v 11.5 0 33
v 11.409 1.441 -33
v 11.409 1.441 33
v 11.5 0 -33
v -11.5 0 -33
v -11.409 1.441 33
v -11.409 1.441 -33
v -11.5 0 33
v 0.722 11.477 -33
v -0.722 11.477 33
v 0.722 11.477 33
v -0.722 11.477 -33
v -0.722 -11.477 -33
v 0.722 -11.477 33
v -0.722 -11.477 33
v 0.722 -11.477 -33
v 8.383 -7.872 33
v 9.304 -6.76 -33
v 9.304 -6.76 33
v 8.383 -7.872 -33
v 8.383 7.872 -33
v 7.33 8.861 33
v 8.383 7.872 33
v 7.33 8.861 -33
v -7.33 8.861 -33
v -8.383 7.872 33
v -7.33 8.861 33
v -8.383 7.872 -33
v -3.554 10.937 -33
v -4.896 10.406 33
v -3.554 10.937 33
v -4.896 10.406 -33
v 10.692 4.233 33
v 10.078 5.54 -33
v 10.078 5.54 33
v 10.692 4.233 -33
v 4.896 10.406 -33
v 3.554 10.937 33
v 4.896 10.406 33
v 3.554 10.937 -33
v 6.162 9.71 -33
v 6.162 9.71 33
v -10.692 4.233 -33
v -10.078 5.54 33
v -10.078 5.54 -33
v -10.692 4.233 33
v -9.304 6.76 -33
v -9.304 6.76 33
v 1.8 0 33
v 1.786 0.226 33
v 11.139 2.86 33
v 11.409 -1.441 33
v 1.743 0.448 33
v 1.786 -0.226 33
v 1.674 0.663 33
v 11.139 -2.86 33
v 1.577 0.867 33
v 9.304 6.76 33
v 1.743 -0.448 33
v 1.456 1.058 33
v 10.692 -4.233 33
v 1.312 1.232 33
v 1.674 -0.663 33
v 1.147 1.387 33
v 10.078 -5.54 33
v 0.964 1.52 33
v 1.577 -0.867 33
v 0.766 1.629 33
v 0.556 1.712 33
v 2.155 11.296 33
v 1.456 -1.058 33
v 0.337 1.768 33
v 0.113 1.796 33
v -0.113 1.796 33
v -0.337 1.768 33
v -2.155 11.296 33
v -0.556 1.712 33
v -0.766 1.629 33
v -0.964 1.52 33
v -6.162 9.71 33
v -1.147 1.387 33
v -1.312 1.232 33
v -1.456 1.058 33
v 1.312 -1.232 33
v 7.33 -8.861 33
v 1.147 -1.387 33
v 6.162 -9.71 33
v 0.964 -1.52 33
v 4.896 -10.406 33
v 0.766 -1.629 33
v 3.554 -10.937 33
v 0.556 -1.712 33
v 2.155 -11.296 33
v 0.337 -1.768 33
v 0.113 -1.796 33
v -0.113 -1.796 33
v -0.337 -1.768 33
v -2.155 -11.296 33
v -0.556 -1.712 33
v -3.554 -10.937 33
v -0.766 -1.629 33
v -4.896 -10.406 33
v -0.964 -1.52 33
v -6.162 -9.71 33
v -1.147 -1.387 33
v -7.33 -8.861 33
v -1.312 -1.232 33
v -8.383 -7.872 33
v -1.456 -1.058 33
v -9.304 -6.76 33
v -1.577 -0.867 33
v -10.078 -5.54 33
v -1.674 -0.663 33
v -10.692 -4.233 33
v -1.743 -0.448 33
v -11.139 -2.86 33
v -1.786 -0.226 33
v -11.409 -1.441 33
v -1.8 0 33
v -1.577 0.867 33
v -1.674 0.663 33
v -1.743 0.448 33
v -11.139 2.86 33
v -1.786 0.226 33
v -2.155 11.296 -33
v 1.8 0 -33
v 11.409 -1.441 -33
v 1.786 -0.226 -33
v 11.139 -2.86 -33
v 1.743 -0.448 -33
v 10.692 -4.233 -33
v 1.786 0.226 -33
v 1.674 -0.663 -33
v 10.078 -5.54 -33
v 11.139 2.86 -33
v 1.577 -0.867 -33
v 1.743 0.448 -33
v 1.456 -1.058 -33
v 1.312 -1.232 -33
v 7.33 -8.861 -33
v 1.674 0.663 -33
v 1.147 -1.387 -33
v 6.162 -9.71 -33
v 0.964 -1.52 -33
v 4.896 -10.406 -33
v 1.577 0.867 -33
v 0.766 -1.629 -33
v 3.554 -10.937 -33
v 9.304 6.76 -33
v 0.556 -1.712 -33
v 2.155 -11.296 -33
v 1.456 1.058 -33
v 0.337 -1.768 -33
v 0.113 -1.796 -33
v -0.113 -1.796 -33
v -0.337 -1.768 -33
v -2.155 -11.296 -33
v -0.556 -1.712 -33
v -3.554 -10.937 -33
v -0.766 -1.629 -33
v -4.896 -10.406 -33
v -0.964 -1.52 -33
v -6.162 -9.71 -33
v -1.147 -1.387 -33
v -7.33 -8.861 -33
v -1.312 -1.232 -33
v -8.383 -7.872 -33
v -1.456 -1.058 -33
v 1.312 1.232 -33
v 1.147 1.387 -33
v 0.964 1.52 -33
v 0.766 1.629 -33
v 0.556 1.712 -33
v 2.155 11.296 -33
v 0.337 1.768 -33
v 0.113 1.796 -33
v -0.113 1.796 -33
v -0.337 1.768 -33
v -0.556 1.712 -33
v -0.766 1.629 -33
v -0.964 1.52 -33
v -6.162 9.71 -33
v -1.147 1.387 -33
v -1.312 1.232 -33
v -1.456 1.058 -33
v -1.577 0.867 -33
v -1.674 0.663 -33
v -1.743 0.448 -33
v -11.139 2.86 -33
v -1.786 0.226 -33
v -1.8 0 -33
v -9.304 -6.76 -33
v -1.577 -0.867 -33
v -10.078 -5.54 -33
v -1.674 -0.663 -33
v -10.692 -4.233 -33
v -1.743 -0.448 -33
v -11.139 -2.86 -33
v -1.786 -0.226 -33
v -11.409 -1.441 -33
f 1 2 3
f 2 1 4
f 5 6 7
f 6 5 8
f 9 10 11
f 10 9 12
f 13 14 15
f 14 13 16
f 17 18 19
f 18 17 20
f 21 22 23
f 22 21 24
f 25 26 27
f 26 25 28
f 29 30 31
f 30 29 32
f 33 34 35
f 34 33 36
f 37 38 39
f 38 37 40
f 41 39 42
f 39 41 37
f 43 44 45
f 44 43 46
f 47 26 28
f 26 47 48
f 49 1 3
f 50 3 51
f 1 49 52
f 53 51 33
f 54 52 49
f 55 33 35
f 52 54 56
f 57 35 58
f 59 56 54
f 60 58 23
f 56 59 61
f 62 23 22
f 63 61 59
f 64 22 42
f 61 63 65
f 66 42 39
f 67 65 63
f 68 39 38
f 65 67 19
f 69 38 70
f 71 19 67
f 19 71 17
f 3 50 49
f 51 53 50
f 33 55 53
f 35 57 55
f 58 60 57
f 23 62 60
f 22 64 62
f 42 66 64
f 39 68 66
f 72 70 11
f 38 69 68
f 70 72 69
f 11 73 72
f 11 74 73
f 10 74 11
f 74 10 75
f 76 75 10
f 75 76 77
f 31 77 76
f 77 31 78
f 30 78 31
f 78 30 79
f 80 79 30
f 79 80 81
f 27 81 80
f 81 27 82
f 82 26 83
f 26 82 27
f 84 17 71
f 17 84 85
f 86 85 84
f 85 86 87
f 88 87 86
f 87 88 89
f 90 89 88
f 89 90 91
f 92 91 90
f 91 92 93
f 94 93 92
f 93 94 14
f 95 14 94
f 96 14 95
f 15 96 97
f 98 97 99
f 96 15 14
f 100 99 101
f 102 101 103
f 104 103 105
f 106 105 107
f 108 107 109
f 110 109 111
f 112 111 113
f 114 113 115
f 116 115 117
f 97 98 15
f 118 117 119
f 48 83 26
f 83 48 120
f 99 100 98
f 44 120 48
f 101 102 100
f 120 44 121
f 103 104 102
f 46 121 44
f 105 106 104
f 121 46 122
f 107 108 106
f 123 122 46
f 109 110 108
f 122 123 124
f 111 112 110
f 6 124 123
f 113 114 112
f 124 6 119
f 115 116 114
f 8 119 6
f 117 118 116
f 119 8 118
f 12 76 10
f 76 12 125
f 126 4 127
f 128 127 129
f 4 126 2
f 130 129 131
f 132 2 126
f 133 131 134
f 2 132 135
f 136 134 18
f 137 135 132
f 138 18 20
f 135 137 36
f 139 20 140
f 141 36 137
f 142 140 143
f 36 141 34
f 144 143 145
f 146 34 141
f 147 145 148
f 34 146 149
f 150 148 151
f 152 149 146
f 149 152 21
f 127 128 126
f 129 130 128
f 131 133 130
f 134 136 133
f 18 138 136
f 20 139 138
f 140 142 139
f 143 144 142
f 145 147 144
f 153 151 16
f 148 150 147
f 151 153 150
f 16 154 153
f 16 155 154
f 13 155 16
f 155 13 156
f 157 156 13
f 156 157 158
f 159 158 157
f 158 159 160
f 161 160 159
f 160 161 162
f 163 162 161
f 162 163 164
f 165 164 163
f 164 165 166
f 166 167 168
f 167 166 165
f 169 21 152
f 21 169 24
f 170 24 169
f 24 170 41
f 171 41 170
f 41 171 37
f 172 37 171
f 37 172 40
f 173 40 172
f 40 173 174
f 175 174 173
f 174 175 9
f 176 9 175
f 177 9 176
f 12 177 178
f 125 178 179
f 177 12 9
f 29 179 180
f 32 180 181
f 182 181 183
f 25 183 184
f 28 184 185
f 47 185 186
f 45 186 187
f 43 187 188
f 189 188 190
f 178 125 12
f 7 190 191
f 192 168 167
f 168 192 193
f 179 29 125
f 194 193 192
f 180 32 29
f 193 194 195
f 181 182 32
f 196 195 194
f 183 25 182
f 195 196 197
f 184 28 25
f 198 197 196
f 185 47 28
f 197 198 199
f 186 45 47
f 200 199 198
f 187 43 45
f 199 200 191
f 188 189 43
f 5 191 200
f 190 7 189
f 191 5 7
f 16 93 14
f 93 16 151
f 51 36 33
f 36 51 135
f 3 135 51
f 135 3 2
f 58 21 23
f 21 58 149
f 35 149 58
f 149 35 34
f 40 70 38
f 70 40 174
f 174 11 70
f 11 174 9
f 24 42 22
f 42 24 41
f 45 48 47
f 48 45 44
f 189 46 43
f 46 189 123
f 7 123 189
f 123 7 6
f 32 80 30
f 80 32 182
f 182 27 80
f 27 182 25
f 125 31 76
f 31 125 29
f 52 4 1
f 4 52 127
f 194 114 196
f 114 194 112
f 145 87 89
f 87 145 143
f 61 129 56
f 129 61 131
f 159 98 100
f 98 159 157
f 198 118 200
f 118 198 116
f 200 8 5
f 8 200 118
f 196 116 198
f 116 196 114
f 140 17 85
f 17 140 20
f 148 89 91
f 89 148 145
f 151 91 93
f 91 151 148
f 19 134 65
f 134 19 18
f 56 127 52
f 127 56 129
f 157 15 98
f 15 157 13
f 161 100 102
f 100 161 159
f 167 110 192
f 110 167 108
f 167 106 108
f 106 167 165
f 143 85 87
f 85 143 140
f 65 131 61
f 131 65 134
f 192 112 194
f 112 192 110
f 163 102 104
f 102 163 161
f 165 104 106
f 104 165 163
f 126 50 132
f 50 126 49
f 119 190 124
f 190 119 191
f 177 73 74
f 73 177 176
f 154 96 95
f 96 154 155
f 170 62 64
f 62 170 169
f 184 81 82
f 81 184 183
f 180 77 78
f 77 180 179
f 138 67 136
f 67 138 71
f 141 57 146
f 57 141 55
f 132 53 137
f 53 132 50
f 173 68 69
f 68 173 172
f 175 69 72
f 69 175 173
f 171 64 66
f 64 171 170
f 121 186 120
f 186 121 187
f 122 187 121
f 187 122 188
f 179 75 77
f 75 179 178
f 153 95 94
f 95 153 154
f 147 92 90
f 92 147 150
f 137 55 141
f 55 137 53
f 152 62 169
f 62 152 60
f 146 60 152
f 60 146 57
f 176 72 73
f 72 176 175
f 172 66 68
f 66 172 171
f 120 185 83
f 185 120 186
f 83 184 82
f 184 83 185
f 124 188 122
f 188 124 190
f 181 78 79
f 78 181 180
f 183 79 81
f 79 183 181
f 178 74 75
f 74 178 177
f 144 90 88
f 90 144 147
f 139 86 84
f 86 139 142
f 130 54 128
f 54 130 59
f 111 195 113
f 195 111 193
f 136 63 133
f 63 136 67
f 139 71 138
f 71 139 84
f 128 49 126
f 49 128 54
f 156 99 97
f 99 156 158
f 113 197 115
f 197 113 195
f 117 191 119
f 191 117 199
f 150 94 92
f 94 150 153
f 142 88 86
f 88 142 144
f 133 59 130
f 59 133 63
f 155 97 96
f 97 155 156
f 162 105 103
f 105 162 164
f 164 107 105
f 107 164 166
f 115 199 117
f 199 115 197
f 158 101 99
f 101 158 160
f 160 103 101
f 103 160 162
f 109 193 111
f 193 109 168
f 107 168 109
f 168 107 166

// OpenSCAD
$fn = 50;


difference() {
	union() {
		translate(v = [0, 0, -33.0000000000]) {
			cylinder(h = 66, r = 11.5000000000);
		}
	}
	union() {
		translate(v = [0, 0, -100.0000000000]) {
			cylinder(h = 200, r = 1.8000000000);
		}
	}
}
